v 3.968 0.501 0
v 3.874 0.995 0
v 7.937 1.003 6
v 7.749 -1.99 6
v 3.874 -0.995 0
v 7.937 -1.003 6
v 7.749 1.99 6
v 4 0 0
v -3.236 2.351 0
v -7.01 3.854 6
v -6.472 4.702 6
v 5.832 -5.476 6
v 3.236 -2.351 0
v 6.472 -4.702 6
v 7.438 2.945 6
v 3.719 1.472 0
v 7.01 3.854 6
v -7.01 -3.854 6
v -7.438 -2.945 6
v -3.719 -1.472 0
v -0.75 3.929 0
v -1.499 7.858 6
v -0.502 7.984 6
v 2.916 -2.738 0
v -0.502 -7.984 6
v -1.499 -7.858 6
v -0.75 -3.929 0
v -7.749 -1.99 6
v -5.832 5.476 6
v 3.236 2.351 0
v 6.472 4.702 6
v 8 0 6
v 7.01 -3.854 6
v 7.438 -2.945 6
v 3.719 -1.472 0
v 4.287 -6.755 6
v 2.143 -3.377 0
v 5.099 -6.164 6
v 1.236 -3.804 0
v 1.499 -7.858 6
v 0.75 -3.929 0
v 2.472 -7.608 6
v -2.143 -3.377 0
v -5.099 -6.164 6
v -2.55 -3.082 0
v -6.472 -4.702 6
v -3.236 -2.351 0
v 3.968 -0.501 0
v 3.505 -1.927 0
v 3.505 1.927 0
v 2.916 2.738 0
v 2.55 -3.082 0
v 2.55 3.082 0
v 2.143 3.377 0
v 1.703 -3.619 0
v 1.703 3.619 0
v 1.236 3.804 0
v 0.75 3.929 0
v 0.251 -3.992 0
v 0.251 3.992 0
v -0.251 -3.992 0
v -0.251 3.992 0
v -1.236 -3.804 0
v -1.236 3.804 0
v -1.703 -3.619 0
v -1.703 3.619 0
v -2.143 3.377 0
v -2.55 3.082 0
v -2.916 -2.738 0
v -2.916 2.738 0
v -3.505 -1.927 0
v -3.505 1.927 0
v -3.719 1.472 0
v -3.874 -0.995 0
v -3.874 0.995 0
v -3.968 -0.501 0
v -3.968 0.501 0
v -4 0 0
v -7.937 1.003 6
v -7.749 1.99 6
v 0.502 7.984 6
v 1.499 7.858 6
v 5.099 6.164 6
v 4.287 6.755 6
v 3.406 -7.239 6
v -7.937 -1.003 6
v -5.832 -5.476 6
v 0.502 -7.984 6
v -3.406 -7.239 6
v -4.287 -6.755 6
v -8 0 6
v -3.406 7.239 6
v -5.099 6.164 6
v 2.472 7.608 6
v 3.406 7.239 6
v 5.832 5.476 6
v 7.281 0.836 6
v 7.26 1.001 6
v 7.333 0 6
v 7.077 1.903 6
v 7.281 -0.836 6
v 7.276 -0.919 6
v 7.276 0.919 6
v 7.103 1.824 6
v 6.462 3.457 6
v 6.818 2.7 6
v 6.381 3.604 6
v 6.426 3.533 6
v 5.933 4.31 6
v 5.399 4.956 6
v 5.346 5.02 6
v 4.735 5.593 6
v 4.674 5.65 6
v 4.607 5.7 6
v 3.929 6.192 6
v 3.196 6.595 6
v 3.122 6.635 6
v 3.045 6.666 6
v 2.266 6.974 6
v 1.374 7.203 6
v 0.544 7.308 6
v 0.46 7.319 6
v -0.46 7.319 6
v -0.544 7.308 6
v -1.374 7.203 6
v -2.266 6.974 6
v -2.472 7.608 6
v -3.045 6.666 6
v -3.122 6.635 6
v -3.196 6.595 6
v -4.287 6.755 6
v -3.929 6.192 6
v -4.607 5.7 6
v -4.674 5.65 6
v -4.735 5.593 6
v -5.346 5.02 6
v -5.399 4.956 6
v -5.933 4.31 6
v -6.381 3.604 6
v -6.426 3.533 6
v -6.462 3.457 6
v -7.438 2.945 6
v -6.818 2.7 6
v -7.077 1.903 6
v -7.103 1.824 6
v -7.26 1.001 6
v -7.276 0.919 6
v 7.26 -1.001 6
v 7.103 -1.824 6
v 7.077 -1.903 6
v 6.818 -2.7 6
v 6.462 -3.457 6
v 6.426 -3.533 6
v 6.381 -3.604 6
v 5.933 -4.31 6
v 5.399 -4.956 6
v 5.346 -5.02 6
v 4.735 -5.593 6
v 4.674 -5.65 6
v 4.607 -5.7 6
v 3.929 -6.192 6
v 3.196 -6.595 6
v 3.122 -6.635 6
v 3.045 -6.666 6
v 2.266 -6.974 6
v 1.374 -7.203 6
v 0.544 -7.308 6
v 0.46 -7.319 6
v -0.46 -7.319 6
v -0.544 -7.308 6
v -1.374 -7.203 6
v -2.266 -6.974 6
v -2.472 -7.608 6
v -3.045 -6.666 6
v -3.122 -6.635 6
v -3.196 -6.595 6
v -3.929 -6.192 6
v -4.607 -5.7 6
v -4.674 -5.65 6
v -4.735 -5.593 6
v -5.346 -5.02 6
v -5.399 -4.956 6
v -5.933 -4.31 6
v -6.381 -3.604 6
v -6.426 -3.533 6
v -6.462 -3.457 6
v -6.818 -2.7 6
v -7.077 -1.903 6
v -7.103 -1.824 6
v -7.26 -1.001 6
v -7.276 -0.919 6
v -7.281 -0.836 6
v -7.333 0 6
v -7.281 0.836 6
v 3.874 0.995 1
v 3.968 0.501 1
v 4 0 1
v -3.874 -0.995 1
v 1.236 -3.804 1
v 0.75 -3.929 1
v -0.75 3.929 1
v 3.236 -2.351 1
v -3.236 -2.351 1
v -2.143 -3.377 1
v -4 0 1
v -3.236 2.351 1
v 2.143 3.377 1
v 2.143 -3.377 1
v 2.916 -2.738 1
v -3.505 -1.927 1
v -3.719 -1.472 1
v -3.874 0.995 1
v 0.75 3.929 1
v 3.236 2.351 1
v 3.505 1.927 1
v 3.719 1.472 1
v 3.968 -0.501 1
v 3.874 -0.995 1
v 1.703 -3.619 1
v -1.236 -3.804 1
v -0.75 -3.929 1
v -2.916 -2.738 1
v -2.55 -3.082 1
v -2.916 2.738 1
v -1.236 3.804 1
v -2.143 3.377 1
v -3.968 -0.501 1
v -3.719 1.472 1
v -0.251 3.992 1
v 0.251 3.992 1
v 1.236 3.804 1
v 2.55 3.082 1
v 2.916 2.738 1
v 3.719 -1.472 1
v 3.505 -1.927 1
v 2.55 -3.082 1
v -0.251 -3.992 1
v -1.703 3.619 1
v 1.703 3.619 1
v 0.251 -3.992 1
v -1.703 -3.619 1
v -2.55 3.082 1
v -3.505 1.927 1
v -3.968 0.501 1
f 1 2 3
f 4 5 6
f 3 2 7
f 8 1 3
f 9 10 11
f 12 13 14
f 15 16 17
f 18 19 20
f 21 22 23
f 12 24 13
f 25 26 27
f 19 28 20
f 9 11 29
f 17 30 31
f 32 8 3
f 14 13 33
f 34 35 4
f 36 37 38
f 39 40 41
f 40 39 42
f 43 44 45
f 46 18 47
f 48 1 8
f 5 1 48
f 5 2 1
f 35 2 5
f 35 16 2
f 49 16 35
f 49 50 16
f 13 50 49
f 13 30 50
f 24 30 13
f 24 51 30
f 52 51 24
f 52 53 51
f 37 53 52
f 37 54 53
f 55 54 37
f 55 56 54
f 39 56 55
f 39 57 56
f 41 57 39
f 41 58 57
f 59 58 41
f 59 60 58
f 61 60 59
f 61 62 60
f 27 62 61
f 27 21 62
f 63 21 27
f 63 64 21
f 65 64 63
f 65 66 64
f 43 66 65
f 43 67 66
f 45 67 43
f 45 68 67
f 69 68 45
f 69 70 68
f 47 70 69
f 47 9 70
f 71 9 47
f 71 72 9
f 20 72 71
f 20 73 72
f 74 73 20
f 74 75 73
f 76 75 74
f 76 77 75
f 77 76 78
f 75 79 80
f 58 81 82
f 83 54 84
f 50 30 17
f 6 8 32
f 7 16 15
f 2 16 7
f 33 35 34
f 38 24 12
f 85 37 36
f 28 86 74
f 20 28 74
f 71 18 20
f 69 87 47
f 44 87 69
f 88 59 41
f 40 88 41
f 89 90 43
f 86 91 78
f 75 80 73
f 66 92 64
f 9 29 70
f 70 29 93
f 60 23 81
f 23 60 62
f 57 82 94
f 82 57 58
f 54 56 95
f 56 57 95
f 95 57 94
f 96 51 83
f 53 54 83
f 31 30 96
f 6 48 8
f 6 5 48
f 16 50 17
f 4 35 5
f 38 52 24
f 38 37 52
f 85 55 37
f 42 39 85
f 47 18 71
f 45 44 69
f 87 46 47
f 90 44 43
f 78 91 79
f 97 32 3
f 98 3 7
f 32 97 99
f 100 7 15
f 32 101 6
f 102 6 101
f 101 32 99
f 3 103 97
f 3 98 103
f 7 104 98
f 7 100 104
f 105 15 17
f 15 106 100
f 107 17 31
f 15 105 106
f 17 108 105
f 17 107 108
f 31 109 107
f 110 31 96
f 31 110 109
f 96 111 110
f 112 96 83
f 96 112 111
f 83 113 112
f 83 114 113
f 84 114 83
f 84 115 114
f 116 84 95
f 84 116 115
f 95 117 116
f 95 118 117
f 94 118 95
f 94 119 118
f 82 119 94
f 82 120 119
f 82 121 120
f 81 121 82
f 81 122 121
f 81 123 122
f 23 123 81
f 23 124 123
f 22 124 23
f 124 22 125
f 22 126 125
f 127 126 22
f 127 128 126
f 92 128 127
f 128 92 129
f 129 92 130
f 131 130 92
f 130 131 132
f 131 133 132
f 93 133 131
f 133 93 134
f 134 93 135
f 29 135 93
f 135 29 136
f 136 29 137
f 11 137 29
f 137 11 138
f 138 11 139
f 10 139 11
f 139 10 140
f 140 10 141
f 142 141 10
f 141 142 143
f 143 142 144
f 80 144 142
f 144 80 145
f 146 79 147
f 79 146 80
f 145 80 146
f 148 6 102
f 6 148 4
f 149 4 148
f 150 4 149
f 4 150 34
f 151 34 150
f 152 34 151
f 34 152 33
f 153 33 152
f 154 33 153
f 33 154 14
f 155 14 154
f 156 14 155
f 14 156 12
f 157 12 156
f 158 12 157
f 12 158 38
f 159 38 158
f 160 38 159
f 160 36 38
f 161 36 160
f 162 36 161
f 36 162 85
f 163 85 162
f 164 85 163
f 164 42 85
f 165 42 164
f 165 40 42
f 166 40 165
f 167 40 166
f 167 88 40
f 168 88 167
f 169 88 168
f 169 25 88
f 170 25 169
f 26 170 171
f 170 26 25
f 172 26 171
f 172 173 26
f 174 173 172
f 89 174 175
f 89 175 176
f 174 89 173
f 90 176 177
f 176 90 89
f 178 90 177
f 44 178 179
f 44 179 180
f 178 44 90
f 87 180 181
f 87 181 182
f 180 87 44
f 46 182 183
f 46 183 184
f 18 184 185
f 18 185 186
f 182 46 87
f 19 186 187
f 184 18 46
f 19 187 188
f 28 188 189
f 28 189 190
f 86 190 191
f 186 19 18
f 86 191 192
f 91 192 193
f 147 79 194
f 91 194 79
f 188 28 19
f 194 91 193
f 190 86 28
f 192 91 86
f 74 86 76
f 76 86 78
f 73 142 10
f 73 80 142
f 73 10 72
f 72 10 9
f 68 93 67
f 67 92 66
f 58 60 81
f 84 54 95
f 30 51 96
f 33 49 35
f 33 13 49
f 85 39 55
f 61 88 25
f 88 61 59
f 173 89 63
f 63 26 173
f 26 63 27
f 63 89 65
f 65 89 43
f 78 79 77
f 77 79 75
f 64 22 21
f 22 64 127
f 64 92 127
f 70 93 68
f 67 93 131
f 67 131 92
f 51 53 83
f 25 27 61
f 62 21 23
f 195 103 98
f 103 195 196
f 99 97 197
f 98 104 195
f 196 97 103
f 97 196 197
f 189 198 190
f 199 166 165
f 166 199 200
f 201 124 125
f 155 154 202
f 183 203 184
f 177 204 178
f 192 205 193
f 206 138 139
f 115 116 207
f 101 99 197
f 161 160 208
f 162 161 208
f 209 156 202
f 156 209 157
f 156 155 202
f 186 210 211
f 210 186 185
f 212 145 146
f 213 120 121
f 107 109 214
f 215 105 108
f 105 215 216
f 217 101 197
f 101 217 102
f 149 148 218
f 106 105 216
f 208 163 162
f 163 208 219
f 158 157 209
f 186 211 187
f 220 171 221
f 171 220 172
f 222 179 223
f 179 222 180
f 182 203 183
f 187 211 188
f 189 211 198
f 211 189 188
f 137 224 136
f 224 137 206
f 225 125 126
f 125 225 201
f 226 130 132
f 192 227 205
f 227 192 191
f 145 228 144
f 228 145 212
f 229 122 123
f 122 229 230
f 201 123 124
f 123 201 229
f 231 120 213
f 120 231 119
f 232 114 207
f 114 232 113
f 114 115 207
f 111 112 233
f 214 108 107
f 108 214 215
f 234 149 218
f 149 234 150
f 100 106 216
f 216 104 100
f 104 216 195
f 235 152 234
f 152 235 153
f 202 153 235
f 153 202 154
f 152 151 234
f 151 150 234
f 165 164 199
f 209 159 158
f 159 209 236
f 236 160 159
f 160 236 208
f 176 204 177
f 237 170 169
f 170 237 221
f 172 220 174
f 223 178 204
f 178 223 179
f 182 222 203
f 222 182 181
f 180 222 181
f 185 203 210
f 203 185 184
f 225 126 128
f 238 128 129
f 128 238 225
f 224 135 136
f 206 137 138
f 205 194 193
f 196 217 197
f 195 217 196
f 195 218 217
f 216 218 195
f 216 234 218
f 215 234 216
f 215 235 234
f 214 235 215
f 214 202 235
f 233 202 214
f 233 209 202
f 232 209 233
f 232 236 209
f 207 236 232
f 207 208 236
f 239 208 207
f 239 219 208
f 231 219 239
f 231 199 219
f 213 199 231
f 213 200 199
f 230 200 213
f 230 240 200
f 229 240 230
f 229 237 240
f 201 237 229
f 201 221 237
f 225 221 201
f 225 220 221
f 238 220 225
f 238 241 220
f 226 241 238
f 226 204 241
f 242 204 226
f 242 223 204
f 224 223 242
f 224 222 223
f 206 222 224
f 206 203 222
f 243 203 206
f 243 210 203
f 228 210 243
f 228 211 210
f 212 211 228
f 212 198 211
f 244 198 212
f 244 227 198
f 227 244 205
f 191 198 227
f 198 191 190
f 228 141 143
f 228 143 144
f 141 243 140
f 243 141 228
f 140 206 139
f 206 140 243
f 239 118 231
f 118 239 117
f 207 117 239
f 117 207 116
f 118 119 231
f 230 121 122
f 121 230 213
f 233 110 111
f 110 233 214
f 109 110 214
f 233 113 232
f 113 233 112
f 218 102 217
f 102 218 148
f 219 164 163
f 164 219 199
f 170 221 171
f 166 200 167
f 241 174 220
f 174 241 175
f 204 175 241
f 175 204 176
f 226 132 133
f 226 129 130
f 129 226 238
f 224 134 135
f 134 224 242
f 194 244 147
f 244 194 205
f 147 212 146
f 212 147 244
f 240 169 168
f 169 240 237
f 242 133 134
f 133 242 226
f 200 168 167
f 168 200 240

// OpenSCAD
 $fn=50;
 module earthsphere (width, height, angle) {
 scale([1,1,1]){
     linear_extrude(height = height, center = true, convexity = 10,
scale=angle) {
        translate([0, 0, 0]){
            circle(r = 4, center=true);
            }
        }
    }
 }

module hollow_earthsphere(width, height, angle) {
    difference(width, height, angle) {
        earthsphere(width, height, angle);
        translate([0,0,1])
        earthsphere(width, height, angle);
    }
}

translate([0,0,3])
    hollow_earthsphere(2,6,2);
